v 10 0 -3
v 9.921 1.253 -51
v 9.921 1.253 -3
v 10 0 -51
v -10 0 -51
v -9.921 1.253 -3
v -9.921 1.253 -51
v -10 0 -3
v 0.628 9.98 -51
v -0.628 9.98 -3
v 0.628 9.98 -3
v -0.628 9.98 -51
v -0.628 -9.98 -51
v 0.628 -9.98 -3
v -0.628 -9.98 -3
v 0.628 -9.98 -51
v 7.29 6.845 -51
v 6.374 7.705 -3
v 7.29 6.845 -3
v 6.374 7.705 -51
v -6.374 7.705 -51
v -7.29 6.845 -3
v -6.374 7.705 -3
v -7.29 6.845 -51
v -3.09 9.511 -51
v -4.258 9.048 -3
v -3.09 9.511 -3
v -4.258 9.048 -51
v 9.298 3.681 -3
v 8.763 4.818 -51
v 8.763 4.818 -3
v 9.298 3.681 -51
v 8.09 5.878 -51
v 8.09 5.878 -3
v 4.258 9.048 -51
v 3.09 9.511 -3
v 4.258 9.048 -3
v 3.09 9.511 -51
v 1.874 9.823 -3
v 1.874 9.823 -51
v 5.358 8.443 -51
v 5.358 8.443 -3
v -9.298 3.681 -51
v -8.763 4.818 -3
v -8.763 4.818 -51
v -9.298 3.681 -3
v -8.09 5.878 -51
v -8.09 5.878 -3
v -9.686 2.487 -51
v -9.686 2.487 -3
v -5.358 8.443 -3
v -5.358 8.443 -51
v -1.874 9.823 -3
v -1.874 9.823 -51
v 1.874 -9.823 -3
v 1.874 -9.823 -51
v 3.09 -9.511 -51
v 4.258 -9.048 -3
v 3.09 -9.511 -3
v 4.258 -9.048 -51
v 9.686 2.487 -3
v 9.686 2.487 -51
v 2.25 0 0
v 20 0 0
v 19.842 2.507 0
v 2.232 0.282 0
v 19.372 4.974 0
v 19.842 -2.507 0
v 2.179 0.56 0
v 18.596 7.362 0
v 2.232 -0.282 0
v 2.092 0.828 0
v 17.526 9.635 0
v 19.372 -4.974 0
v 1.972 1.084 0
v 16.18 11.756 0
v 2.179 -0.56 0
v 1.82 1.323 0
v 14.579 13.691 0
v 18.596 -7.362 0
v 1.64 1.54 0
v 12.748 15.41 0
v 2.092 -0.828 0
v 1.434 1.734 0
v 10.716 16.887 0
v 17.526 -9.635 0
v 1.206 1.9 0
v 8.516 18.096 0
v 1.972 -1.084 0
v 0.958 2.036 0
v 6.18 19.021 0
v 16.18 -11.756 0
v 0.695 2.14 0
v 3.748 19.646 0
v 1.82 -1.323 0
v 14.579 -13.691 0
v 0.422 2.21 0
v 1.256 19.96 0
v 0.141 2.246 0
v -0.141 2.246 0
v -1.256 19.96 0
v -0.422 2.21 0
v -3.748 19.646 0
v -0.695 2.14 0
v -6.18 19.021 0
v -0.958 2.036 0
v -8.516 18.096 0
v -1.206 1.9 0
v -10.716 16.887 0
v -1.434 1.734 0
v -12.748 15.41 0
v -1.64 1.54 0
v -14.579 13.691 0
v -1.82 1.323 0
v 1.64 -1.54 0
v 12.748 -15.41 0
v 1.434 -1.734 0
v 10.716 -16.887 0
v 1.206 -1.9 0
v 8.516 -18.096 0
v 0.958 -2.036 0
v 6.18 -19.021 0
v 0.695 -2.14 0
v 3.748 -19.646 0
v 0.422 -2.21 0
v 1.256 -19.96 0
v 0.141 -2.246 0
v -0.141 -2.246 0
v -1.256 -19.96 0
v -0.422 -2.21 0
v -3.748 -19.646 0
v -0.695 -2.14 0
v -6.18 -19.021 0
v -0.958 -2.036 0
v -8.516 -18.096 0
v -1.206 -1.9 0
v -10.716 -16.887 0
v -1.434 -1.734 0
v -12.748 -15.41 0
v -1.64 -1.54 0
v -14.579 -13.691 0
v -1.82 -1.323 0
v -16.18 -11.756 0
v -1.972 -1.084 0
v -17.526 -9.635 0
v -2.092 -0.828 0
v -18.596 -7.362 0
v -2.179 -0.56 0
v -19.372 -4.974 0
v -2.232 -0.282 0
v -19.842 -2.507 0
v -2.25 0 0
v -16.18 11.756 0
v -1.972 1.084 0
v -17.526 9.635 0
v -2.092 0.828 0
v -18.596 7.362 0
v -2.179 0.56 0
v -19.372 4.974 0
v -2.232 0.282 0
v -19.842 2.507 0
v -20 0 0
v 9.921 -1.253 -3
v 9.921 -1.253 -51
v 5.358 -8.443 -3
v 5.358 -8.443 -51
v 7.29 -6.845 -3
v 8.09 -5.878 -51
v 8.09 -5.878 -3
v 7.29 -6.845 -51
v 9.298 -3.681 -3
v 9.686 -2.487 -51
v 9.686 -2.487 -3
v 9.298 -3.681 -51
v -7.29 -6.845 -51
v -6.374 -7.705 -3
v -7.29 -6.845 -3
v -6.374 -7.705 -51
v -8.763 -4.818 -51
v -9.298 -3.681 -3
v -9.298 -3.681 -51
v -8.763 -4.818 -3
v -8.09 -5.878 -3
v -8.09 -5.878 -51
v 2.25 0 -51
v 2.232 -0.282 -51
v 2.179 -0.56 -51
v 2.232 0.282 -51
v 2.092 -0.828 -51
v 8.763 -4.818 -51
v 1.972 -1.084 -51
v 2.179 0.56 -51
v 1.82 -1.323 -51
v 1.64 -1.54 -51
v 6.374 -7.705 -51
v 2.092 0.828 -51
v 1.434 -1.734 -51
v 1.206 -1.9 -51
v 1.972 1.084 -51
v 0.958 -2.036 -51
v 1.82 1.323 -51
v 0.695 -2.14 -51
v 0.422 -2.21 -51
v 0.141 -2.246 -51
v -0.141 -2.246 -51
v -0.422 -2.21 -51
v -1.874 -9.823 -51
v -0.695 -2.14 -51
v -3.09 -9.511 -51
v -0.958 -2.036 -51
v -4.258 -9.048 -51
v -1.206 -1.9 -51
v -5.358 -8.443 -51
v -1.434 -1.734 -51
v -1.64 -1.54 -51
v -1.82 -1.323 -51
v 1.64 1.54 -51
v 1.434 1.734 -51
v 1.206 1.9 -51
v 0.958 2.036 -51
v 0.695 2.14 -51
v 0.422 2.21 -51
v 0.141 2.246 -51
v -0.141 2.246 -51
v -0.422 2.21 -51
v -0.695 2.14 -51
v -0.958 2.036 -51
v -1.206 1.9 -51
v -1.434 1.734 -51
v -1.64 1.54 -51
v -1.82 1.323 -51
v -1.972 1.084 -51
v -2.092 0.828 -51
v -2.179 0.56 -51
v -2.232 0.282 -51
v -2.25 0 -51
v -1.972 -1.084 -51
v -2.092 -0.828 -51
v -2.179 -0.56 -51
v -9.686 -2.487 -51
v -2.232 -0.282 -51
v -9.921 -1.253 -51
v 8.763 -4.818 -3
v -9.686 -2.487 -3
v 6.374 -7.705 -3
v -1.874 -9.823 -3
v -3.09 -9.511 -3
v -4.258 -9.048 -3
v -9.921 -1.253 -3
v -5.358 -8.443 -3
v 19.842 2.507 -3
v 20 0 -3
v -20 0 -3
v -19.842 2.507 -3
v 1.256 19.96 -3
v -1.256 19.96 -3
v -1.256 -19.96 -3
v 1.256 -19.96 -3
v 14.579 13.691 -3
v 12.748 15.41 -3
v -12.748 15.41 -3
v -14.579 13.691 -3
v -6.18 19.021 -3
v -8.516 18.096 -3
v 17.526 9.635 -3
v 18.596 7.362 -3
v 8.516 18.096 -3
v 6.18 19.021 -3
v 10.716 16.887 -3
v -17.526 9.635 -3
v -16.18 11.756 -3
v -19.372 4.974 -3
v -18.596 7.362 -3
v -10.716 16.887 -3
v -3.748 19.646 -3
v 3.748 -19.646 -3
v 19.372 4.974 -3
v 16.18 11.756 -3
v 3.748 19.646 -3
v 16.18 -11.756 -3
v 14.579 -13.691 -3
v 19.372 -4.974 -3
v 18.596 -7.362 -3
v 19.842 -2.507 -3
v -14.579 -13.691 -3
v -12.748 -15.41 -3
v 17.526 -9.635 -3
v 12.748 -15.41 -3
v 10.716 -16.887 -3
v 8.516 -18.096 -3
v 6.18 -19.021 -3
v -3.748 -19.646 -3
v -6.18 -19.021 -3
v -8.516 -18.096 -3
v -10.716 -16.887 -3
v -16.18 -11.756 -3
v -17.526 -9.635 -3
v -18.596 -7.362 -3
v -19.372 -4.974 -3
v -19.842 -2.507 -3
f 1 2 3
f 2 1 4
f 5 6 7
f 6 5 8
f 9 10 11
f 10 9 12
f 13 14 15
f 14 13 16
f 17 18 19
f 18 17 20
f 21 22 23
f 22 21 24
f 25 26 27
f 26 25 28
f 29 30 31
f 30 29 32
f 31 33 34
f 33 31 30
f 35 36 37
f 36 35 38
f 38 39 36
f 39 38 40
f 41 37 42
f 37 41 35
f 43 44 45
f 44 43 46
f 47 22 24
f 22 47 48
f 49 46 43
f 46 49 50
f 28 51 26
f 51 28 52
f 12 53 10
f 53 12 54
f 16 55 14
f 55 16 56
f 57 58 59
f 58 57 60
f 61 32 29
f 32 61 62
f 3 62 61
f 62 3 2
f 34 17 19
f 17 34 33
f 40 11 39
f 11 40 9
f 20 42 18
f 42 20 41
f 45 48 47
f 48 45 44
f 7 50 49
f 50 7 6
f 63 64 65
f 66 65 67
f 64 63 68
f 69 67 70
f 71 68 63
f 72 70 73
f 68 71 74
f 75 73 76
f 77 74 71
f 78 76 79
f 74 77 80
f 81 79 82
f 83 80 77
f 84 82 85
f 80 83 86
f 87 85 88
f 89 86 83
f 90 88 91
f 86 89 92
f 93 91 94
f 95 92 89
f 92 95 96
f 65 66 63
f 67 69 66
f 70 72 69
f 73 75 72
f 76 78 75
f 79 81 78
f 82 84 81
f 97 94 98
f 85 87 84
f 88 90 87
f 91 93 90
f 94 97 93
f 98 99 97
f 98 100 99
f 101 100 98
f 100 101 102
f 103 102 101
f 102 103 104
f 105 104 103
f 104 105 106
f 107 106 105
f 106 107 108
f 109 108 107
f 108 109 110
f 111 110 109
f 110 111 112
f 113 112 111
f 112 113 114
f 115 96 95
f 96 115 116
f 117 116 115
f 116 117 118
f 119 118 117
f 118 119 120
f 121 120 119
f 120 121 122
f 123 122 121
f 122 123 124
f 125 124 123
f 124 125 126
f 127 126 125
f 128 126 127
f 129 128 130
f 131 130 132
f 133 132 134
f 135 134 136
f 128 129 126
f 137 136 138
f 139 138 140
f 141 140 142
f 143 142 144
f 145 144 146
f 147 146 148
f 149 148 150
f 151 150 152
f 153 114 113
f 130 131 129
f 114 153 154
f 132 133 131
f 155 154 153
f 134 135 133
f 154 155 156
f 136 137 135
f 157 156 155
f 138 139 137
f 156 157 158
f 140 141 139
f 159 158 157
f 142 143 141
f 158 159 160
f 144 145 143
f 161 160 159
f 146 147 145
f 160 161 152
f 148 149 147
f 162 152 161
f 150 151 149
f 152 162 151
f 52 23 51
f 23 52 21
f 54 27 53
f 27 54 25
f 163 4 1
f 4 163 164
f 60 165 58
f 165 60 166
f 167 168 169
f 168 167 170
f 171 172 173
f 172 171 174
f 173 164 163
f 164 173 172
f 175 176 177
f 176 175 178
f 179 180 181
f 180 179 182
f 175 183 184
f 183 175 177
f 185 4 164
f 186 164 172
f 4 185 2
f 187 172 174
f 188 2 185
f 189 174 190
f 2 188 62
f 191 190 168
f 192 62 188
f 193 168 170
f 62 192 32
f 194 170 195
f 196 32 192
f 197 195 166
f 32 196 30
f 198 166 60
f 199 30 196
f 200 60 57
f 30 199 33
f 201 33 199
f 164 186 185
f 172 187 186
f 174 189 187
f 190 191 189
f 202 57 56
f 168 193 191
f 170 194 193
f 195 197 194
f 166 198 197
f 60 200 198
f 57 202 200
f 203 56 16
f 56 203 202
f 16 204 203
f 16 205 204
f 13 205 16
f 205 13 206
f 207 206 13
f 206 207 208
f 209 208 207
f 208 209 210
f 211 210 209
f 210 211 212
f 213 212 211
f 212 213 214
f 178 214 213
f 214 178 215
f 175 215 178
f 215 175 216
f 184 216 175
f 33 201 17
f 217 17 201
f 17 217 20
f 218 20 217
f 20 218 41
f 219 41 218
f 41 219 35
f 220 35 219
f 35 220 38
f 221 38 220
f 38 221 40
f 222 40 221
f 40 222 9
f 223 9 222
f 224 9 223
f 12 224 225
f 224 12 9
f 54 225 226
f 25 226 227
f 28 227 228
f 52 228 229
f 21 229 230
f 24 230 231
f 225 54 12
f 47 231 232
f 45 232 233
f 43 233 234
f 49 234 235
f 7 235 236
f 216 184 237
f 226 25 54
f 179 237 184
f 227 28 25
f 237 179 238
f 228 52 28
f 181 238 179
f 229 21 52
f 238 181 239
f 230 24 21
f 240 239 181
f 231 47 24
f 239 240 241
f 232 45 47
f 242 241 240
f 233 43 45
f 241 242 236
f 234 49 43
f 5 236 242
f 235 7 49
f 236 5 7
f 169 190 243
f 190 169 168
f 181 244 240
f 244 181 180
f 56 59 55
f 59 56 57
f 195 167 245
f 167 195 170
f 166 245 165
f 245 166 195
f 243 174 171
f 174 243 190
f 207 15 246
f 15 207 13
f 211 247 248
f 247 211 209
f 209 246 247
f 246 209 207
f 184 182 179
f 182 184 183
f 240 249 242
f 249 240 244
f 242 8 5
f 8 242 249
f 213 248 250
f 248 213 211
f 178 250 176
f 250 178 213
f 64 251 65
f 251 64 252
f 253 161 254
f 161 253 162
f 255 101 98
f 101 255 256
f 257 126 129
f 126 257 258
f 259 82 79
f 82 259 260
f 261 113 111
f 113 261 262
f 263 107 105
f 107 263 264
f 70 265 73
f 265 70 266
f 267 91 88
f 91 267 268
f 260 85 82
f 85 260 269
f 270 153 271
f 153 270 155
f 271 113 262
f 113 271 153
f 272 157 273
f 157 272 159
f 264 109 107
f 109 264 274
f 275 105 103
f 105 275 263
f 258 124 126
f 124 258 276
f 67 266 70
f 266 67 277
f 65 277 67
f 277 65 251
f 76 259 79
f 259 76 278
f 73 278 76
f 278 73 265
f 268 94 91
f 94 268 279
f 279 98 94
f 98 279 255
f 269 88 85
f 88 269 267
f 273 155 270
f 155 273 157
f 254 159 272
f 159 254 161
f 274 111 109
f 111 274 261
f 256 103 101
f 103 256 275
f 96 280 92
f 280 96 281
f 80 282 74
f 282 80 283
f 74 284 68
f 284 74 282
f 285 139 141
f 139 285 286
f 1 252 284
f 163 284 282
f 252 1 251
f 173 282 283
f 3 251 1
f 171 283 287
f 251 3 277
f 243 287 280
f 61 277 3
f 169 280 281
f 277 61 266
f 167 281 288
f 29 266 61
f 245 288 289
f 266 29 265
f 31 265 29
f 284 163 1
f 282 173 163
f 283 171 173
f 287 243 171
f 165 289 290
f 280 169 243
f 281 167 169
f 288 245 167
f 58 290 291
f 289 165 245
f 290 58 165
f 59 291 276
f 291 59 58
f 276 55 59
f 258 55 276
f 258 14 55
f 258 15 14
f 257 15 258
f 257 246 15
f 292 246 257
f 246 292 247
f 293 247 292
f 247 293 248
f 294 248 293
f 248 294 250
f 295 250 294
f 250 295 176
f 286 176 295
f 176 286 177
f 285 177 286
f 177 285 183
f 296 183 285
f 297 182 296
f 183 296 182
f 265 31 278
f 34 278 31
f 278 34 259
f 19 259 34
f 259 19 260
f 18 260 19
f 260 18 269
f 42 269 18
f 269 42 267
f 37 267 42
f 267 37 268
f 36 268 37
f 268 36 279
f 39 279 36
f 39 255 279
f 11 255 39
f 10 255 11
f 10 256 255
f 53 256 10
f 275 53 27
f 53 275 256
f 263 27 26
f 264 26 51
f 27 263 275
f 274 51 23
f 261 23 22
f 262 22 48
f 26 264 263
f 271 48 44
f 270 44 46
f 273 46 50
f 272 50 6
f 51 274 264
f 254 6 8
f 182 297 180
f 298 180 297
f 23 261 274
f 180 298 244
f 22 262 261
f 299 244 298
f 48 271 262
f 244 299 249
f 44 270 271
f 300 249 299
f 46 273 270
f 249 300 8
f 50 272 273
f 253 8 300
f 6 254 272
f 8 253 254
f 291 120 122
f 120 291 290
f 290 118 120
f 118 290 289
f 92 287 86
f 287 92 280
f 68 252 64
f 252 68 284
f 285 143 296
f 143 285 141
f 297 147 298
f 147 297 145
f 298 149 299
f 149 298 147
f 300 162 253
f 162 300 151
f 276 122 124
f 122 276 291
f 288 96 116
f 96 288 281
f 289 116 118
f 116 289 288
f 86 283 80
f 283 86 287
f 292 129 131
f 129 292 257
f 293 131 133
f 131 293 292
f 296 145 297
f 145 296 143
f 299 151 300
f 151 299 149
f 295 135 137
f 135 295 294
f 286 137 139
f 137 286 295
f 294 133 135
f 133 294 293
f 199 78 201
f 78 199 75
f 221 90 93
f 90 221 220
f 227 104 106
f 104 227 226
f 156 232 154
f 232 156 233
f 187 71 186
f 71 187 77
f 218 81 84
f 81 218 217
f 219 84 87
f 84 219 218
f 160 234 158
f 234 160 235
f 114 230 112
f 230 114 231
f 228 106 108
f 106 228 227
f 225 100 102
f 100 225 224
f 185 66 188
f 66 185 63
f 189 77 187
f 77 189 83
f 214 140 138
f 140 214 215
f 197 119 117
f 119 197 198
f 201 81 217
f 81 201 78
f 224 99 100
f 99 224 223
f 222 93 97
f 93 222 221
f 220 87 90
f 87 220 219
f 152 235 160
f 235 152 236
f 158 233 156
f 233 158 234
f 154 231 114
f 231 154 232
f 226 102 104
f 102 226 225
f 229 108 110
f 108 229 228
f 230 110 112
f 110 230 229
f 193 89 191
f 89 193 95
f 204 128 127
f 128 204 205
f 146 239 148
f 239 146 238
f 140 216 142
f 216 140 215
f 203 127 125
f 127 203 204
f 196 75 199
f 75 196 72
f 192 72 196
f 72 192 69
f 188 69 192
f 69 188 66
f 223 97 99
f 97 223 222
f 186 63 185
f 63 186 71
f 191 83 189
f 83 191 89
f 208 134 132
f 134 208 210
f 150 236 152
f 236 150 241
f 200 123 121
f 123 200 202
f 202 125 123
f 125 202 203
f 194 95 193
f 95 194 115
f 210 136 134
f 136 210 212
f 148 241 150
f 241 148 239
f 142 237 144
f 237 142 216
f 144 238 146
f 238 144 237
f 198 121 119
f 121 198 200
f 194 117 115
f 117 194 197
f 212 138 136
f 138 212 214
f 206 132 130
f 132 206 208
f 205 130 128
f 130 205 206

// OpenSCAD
$fn = 50;


difference() {
	union() {
		translate(v = [0, 0, -51.0000000000]) {
			cylinder(h = 51, r = 10.0000000000);
		}
		translate(v = [0, 0, -3.0000000000]) {
			cylinder(h = 3, r = 20.0000000000);
		}
	}
	union() {
		#translate(v = [0, 0, -51]) {
			cylinder(h = 51, r = 2.2500000000);
		}
	}
}
